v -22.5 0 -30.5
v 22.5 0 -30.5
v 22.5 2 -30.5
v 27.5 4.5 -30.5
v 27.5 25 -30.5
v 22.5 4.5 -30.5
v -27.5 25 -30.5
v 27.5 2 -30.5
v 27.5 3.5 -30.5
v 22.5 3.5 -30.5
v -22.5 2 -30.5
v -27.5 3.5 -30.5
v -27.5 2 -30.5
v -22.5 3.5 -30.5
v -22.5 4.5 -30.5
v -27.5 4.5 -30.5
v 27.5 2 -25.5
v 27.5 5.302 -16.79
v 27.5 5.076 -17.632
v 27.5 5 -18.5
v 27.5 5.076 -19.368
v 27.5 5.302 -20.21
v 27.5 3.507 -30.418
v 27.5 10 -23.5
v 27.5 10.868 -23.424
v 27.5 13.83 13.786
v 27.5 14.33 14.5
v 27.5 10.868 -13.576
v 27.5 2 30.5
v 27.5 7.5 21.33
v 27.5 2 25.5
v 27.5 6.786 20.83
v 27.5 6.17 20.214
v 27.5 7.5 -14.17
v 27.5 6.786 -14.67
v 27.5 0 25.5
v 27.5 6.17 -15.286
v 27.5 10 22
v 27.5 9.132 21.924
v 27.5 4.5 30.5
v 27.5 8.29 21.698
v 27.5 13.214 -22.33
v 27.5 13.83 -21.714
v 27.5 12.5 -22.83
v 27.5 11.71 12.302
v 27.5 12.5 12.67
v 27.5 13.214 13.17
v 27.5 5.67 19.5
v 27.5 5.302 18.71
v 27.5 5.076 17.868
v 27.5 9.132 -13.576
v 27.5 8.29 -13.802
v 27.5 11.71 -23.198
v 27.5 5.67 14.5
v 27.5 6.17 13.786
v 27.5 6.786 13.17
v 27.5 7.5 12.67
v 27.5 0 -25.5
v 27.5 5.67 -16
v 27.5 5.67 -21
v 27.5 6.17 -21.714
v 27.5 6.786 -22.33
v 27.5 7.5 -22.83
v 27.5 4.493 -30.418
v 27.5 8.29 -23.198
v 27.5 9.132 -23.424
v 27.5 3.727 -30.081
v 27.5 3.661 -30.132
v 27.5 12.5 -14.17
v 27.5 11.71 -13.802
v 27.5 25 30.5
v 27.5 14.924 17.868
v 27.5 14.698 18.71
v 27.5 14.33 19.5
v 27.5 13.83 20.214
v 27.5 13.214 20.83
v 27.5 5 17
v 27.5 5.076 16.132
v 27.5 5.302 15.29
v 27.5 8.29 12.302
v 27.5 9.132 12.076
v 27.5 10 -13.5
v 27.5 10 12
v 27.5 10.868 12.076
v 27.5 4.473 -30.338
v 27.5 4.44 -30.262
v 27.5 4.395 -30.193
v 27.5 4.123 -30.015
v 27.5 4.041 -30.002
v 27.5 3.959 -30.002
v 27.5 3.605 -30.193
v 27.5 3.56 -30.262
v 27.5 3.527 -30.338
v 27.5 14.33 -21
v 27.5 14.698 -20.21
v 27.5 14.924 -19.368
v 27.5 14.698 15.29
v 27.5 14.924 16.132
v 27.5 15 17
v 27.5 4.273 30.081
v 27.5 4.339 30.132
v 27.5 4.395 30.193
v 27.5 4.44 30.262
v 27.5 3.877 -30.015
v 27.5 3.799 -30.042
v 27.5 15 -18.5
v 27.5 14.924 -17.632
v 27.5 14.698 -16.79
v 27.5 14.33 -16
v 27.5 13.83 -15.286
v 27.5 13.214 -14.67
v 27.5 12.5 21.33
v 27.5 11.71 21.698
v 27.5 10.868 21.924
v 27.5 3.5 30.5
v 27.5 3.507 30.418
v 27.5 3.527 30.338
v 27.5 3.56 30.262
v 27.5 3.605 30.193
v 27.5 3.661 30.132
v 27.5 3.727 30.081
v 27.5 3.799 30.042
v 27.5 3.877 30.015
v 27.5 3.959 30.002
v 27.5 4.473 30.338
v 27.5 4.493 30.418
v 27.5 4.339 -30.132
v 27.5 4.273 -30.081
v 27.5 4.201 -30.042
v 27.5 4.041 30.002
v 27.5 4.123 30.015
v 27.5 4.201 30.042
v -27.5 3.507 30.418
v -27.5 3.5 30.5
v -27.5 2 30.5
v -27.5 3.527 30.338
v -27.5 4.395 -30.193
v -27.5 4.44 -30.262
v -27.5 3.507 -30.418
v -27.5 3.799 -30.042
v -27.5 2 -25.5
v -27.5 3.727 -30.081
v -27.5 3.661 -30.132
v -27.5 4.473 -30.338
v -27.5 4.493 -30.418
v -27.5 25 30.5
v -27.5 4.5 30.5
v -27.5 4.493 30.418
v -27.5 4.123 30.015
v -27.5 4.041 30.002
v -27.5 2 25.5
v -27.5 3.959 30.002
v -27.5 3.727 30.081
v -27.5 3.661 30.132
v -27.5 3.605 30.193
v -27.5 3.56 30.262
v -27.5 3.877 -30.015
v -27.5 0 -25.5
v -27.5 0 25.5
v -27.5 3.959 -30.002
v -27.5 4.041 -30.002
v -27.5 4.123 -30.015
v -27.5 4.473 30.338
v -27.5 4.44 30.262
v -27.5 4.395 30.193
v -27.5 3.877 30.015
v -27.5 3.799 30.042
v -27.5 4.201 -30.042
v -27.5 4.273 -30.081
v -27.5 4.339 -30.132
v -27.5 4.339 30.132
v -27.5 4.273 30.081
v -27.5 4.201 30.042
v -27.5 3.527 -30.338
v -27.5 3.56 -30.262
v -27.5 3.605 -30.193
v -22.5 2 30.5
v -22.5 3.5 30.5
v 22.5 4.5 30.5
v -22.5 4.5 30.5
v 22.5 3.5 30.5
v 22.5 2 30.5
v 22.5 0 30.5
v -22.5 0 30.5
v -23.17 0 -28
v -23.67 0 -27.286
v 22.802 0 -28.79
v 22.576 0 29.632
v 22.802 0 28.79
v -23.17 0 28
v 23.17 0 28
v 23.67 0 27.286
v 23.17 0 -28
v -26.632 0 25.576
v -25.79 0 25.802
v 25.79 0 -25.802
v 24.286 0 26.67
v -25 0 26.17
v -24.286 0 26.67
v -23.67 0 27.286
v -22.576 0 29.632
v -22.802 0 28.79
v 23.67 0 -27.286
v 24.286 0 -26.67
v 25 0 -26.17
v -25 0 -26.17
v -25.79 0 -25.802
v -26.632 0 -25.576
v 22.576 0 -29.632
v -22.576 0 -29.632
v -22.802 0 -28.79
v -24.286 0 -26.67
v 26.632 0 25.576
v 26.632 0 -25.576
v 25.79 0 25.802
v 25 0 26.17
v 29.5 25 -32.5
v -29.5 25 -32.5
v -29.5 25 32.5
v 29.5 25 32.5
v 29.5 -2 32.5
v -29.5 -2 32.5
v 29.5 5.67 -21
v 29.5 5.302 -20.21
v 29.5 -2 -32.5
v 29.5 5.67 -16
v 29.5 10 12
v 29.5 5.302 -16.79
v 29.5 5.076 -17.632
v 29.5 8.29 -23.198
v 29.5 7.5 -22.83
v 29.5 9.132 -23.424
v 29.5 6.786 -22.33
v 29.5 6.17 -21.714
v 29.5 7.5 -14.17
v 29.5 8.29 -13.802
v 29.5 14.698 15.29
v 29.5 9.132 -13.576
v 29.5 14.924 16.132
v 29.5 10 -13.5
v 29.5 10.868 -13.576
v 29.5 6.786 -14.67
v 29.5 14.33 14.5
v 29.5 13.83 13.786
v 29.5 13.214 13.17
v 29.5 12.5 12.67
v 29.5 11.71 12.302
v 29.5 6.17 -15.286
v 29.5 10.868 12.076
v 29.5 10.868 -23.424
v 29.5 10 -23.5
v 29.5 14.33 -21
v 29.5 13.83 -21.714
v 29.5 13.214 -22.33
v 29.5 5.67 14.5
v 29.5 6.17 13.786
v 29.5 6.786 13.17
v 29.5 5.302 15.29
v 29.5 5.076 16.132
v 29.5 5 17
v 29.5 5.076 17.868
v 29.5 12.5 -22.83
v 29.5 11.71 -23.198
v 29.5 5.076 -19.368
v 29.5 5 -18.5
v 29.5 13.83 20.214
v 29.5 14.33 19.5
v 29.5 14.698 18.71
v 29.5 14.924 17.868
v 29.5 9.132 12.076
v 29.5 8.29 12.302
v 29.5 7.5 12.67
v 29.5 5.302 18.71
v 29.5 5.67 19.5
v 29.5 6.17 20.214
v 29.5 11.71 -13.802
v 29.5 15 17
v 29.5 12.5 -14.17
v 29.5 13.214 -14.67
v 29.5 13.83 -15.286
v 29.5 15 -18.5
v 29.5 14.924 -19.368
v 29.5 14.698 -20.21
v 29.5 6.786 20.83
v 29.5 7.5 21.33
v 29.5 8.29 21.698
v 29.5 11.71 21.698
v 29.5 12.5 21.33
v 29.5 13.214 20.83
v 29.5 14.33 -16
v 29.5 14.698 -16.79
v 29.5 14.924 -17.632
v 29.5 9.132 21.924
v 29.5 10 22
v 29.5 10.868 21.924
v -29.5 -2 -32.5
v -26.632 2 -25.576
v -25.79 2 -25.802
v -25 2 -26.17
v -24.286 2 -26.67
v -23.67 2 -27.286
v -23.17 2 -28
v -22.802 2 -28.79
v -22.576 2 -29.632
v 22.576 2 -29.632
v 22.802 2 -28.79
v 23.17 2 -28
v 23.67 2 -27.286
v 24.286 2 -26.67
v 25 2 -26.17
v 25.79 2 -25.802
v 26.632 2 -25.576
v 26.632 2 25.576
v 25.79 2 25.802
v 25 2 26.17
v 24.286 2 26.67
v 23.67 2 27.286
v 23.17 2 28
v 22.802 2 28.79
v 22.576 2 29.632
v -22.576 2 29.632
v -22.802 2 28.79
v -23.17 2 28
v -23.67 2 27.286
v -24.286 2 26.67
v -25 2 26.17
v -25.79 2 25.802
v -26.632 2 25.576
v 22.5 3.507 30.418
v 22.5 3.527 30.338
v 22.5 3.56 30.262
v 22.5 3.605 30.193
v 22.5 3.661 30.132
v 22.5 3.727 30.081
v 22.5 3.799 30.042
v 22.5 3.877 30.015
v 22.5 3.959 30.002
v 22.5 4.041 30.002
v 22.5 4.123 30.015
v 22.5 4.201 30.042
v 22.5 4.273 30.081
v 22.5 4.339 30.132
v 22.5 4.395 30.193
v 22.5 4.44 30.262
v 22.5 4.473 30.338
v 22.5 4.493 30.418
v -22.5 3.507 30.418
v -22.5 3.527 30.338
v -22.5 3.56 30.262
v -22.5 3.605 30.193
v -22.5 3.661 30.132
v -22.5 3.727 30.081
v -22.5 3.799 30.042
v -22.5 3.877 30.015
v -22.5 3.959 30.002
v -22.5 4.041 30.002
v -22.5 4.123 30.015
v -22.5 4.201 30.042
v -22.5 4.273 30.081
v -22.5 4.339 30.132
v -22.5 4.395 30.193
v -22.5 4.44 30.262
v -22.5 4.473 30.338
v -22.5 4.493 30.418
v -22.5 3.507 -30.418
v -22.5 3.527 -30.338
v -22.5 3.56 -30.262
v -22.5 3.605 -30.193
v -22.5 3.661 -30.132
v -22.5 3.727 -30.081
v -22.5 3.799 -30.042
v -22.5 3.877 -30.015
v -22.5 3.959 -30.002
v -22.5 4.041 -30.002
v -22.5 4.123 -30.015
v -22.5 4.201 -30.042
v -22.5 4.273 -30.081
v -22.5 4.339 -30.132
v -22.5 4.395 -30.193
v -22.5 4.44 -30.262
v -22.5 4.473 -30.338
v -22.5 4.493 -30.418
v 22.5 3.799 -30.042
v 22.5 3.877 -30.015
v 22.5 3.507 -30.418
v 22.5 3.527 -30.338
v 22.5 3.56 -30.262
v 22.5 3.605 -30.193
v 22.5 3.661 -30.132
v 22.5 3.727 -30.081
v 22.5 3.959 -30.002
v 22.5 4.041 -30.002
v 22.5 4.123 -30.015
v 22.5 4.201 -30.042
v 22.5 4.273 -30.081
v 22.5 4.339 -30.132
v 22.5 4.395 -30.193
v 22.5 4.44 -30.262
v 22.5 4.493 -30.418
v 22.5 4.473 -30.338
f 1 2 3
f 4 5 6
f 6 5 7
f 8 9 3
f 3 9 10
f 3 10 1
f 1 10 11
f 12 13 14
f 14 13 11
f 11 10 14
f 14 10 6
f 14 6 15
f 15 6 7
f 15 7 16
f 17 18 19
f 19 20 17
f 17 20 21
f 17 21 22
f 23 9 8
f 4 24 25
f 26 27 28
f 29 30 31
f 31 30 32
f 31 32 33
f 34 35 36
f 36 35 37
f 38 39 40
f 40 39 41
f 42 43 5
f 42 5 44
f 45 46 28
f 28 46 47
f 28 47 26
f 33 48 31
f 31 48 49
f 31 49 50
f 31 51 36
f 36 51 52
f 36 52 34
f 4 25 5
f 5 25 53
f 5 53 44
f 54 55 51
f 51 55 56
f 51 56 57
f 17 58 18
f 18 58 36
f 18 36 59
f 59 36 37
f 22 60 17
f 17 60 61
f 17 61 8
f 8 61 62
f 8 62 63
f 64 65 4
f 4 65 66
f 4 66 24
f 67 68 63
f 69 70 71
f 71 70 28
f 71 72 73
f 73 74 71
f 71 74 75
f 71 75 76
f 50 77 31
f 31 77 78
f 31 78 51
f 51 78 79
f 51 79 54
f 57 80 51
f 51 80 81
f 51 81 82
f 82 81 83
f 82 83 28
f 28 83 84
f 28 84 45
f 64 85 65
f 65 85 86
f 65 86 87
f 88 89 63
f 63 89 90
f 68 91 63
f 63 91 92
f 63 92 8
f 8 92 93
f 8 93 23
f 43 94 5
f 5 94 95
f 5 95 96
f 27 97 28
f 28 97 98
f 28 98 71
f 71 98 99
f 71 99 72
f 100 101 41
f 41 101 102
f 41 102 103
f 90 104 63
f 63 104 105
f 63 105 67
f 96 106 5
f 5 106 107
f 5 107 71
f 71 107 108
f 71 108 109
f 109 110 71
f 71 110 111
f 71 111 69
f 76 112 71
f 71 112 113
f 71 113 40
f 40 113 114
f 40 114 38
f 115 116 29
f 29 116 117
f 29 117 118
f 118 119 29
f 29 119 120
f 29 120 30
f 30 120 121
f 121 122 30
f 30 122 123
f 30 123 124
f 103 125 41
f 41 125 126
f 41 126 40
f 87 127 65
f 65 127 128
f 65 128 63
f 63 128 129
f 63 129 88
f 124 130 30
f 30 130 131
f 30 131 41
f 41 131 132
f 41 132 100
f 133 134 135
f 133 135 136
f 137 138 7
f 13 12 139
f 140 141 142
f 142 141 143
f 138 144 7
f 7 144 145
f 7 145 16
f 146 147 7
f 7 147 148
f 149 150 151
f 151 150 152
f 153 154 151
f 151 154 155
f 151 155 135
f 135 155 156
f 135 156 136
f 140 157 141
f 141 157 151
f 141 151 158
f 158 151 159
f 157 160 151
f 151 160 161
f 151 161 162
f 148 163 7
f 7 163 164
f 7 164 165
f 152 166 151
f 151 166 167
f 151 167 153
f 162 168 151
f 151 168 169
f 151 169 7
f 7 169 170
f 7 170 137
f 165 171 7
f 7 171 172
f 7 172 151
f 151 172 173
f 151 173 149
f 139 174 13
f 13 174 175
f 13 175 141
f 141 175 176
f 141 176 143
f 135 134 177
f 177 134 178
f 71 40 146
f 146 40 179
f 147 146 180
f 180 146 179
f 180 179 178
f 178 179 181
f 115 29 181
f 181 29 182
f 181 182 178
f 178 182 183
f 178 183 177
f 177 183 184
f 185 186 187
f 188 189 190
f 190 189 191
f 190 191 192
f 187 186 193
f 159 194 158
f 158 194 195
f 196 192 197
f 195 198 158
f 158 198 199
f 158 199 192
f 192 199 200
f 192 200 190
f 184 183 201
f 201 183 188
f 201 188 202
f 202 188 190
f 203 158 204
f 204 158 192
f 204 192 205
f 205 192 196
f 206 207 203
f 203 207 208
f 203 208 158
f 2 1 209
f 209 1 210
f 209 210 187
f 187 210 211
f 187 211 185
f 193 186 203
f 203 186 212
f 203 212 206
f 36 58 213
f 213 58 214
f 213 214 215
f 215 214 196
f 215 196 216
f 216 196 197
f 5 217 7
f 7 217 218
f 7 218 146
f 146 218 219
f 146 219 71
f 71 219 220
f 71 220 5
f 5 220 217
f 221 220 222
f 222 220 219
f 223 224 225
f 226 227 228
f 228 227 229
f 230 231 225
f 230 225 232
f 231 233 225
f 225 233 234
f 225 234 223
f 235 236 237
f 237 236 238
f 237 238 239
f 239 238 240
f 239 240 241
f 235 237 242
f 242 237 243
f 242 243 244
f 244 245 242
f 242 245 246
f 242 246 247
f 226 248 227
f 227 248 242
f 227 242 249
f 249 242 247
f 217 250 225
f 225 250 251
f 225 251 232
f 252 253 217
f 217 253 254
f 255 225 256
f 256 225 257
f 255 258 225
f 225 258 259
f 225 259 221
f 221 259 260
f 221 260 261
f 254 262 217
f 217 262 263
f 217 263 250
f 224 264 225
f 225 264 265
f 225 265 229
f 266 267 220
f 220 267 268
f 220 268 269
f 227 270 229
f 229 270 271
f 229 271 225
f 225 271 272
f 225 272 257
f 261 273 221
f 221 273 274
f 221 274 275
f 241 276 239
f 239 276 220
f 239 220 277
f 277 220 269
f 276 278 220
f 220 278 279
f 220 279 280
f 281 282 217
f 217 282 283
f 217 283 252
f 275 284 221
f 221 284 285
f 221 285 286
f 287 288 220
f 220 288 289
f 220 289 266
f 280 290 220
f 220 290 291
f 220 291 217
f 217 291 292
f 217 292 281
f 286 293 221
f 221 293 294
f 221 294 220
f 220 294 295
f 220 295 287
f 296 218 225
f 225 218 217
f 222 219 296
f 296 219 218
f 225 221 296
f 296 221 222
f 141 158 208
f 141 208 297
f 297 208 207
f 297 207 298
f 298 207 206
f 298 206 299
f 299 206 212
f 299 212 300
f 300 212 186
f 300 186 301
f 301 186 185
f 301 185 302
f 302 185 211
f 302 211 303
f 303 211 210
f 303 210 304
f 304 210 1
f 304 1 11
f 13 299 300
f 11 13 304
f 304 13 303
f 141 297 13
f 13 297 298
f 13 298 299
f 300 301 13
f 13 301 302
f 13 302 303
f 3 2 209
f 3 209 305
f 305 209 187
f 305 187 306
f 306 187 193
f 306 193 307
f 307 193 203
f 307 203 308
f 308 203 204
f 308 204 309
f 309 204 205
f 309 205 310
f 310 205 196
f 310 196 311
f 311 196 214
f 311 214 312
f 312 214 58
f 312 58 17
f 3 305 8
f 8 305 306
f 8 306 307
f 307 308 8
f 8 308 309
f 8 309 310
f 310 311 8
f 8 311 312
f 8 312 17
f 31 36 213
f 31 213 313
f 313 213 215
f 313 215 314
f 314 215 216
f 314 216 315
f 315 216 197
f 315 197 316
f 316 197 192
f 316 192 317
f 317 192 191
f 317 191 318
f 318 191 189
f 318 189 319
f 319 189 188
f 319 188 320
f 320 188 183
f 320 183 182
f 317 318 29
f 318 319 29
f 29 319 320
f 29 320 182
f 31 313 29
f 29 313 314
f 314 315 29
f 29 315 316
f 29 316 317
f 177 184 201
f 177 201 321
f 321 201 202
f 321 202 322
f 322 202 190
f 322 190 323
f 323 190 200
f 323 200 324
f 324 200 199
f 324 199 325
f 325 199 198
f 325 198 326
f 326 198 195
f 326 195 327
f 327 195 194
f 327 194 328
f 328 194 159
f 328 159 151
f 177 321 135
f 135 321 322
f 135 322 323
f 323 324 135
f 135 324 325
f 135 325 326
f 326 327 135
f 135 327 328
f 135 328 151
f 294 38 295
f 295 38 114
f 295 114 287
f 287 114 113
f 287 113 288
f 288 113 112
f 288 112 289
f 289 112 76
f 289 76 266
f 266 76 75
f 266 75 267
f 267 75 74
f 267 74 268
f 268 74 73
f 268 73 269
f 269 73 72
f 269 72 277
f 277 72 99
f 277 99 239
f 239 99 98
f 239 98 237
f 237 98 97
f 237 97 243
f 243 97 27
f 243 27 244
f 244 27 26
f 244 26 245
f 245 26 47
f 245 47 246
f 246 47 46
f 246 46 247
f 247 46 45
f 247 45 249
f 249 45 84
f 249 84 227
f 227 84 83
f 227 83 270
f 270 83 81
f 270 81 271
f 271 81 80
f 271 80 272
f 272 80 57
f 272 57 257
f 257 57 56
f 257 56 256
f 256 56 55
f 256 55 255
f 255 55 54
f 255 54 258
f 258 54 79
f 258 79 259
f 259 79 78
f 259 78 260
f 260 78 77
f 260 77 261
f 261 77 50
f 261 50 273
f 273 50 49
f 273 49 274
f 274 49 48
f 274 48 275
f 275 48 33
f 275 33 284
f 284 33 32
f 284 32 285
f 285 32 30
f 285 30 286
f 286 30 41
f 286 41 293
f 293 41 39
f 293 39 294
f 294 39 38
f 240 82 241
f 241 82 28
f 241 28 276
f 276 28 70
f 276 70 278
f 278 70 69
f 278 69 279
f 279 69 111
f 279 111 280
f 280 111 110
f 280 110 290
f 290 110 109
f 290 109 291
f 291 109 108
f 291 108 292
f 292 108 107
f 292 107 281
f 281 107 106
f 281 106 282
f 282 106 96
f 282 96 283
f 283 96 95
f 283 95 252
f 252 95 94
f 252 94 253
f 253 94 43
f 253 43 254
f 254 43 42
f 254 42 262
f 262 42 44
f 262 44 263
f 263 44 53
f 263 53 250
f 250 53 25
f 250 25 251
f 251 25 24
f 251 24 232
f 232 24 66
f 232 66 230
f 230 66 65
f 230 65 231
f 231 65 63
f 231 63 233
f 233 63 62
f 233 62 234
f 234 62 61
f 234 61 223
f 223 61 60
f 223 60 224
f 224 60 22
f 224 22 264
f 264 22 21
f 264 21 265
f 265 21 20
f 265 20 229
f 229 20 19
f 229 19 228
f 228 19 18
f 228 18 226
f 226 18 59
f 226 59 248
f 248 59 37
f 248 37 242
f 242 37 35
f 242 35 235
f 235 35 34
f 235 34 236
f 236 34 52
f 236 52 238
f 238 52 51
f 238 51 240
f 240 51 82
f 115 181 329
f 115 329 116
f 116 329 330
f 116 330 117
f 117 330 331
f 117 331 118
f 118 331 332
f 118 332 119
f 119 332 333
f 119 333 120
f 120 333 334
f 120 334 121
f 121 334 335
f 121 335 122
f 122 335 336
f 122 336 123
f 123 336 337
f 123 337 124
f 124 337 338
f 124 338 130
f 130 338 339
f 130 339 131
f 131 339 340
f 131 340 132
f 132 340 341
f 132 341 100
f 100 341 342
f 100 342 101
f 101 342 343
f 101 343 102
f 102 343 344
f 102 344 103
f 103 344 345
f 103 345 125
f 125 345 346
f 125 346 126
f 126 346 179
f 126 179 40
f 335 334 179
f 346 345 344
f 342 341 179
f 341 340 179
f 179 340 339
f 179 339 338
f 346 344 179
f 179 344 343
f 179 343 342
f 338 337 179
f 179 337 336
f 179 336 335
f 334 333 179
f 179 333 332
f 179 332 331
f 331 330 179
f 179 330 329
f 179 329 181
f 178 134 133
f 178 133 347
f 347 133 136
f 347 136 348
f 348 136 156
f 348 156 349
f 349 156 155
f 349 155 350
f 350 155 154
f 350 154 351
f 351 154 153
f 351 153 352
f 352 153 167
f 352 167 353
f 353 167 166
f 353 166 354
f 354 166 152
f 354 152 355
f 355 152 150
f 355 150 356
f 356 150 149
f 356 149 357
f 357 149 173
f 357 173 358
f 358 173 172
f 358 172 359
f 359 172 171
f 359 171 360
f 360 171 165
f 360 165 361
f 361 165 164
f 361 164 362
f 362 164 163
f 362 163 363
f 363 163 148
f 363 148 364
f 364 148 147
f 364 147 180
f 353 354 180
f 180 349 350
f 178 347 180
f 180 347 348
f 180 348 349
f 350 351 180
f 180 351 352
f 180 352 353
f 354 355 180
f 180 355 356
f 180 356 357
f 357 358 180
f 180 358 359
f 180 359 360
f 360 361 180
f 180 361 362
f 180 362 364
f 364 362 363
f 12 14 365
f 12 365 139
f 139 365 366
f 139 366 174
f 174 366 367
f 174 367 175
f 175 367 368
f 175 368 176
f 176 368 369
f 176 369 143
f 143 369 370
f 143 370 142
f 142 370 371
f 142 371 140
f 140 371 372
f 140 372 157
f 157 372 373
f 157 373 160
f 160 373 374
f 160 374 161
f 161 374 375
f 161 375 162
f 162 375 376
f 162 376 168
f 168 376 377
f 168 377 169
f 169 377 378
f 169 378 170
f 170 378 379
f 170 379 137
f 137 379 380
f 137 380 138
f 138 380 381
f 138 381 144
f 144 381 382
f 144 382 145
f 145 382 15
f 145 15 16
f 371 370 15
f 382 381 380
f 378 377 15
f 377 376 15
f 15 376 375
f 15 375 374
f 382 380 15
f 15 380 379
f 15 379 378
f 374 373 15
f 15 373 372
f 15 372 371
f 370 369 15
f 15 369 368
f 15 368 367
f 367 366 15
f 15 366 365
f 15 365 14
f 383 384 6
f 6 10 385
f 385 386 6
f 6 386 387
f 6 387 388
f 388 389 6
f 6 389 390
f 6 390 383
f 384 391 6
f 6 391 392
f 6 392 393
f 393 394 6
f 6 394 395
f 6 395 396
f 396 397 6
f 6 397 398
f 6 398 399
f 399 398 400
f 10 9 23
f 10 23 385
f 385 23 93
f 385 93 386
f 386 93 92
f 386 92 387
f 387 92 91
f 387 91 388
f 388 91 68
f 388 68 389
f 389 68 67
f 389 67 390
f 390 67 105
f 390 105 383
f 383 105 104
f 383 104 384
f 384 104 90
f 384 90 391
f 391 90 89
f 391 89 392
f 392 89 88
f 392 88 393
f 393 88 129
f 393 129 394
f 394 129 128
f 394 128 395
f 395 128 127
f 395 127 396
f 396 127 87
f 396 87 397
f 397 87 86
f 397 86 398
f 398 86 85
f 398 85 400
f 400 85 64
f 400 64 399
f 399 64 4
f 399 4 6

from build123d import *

# Parameters (mm, degrees)
SKETCH_1_W          = 59
SKETCH_1_H          = 65
SKETCH_1_W_2        = 55
SKETCH_1_H_2        = 61
EXTRUDE_1_DEPTH     = 25
SKETCH_2_W          = 59
SKETCH_2_H          = 65
EXTRUDE_2_DEPTH     = 2
EXTRUDE_3_DEPTH     = 2
SKETCH_4_R          = 5
CUT_EXTRUDE_1_DEPTH = 71.215738976
SKETCH_5_W          = 5
SKETCH_5_H          = 0.5
REVOLVE_1_ANGLE     = 180
SKETCH_7_W          = 5
SKETCH_7_H          = 0.5
REVOLVE_2_ANGLE     = 180


with BuildPart() as part:
    # Эскиз1 → Бобышка-Вытянуть1 (new body)
    with BuildSketch(Plane(origin=(0, 0, 0), x_dir=(1, 0, 0), z_dir=(0, 1, 0))):
        Rectangle(SKETCH_1_W, SKETCH_1_H)
        Rectangle(SKETCH_1_W_2, SKETCH_1_H_2, mode=Mode.SUBTRACT)
    extrude(amount=EXTRUDE_1_DEPTH)

    # Эскиз2 → Бобышка-Вытянуть2 (add)
    with BuildSketch(Plane.XZ):
        Rectangle(SKETCH_2_W, SKETCH_2_H)
    extrude(amount=EXTRUDE_2_DEPTH)

    # Эскиз3 → Бобышка-Вытянуть3 (add)
    with BuildSketch(Plane(origin=(0, 0, 0), x_dir=(1, 0, 0), z_dir=(0, 1, 0))):
        with BuildLine():
            Line((-27.5, 25.5), (-27.5, 30.5))
            Line((-27.5, 30.5), (-22.5, 30.5))
            ThreePointArc((-22.5, 30.5), (-23.964466094, 26.964466094), (-27.5, 25.5))
        make_face()
        with BuildLine():
            Line((27.5, 30.5), (22.5, 30.5))
            ThreePointArc((22.5, 30.5), (23.964466094, 26.964466094), (27.5, 25.5))
            Line((27.5, 25.5), (27.5, 30.5))
        make_face()
        with BuildLine():
            Line((27.5, -25.5), (27.5, -30.5))
            Line((27.5, -30.5), (22.5, -30.5))
            ThreePointArc((22.5, -30.5), (23.964466094, -26.964466094), (27.5, -25.5))
        make_face()
        with BuildLine():
            Line((-27.5, -25.5), (-27.5, -30.5))
            Line((-27.5, -30.5), (-22.5, -30.5))
            ThreePointArc((-22.5, -30.5), (-23.964466094, -26.964466094), (-27.5, -25.5))
        make_face()
    extrude(amount=EXTRUDE_3_DEPTH)

    # Эскиз4 → Вырез-Вытянуть1 (cut, through all)
    with BuildSketch(Plane.ZY.offset(-27.5)):
        with Locations((17, 10)):
            Circle(SKETCH_4_R)
        with Locations((-18.5, 10)):
            Circle(SKETCH_4_R)
    extrude(amount=-CUT_EXTRUDE_1_DEPTH, mode=Mode.SUBTRACT)

    # Эскиз5 → Повернуть1 (revolve)
    with BuildSketch(Plane(origin=(0, 0, 30.5), x_dir=(-1, 0, 0), z_dir=(0, 0, -1))):
        with Locations((-25, 3.75)):
            Rectangle(SKETCH_5_W, SKETCH_5_H)
        with Locations((25, 3.75)):
            Rectangle(SKETCH_5_W, SKETCH_5_H)
    revolve(axis=Axis((27.5, 4, 30.5), (1, 0, 0)), revolution_arc=REVOLVE_1_ANGLE)

    # Эскиз7 → Повернуть2 (revolve)
    with BuildSketch(Plane.XY.offset(-30.5)):
        with Locations((-25, 3.75)):
            Rectangle(SKETCH_7_W, SKETCH_7_H)
        with Locations((25, 3.75)):
            Rectangle(SKETCH_7_W, SKETCH_7_H)
    revolve(axis=Axis((-27.5, 4, -30.5), (-1, 0, 0)), revolution_arc=REVOLVE_2_ANGLE)


solid = part.part
